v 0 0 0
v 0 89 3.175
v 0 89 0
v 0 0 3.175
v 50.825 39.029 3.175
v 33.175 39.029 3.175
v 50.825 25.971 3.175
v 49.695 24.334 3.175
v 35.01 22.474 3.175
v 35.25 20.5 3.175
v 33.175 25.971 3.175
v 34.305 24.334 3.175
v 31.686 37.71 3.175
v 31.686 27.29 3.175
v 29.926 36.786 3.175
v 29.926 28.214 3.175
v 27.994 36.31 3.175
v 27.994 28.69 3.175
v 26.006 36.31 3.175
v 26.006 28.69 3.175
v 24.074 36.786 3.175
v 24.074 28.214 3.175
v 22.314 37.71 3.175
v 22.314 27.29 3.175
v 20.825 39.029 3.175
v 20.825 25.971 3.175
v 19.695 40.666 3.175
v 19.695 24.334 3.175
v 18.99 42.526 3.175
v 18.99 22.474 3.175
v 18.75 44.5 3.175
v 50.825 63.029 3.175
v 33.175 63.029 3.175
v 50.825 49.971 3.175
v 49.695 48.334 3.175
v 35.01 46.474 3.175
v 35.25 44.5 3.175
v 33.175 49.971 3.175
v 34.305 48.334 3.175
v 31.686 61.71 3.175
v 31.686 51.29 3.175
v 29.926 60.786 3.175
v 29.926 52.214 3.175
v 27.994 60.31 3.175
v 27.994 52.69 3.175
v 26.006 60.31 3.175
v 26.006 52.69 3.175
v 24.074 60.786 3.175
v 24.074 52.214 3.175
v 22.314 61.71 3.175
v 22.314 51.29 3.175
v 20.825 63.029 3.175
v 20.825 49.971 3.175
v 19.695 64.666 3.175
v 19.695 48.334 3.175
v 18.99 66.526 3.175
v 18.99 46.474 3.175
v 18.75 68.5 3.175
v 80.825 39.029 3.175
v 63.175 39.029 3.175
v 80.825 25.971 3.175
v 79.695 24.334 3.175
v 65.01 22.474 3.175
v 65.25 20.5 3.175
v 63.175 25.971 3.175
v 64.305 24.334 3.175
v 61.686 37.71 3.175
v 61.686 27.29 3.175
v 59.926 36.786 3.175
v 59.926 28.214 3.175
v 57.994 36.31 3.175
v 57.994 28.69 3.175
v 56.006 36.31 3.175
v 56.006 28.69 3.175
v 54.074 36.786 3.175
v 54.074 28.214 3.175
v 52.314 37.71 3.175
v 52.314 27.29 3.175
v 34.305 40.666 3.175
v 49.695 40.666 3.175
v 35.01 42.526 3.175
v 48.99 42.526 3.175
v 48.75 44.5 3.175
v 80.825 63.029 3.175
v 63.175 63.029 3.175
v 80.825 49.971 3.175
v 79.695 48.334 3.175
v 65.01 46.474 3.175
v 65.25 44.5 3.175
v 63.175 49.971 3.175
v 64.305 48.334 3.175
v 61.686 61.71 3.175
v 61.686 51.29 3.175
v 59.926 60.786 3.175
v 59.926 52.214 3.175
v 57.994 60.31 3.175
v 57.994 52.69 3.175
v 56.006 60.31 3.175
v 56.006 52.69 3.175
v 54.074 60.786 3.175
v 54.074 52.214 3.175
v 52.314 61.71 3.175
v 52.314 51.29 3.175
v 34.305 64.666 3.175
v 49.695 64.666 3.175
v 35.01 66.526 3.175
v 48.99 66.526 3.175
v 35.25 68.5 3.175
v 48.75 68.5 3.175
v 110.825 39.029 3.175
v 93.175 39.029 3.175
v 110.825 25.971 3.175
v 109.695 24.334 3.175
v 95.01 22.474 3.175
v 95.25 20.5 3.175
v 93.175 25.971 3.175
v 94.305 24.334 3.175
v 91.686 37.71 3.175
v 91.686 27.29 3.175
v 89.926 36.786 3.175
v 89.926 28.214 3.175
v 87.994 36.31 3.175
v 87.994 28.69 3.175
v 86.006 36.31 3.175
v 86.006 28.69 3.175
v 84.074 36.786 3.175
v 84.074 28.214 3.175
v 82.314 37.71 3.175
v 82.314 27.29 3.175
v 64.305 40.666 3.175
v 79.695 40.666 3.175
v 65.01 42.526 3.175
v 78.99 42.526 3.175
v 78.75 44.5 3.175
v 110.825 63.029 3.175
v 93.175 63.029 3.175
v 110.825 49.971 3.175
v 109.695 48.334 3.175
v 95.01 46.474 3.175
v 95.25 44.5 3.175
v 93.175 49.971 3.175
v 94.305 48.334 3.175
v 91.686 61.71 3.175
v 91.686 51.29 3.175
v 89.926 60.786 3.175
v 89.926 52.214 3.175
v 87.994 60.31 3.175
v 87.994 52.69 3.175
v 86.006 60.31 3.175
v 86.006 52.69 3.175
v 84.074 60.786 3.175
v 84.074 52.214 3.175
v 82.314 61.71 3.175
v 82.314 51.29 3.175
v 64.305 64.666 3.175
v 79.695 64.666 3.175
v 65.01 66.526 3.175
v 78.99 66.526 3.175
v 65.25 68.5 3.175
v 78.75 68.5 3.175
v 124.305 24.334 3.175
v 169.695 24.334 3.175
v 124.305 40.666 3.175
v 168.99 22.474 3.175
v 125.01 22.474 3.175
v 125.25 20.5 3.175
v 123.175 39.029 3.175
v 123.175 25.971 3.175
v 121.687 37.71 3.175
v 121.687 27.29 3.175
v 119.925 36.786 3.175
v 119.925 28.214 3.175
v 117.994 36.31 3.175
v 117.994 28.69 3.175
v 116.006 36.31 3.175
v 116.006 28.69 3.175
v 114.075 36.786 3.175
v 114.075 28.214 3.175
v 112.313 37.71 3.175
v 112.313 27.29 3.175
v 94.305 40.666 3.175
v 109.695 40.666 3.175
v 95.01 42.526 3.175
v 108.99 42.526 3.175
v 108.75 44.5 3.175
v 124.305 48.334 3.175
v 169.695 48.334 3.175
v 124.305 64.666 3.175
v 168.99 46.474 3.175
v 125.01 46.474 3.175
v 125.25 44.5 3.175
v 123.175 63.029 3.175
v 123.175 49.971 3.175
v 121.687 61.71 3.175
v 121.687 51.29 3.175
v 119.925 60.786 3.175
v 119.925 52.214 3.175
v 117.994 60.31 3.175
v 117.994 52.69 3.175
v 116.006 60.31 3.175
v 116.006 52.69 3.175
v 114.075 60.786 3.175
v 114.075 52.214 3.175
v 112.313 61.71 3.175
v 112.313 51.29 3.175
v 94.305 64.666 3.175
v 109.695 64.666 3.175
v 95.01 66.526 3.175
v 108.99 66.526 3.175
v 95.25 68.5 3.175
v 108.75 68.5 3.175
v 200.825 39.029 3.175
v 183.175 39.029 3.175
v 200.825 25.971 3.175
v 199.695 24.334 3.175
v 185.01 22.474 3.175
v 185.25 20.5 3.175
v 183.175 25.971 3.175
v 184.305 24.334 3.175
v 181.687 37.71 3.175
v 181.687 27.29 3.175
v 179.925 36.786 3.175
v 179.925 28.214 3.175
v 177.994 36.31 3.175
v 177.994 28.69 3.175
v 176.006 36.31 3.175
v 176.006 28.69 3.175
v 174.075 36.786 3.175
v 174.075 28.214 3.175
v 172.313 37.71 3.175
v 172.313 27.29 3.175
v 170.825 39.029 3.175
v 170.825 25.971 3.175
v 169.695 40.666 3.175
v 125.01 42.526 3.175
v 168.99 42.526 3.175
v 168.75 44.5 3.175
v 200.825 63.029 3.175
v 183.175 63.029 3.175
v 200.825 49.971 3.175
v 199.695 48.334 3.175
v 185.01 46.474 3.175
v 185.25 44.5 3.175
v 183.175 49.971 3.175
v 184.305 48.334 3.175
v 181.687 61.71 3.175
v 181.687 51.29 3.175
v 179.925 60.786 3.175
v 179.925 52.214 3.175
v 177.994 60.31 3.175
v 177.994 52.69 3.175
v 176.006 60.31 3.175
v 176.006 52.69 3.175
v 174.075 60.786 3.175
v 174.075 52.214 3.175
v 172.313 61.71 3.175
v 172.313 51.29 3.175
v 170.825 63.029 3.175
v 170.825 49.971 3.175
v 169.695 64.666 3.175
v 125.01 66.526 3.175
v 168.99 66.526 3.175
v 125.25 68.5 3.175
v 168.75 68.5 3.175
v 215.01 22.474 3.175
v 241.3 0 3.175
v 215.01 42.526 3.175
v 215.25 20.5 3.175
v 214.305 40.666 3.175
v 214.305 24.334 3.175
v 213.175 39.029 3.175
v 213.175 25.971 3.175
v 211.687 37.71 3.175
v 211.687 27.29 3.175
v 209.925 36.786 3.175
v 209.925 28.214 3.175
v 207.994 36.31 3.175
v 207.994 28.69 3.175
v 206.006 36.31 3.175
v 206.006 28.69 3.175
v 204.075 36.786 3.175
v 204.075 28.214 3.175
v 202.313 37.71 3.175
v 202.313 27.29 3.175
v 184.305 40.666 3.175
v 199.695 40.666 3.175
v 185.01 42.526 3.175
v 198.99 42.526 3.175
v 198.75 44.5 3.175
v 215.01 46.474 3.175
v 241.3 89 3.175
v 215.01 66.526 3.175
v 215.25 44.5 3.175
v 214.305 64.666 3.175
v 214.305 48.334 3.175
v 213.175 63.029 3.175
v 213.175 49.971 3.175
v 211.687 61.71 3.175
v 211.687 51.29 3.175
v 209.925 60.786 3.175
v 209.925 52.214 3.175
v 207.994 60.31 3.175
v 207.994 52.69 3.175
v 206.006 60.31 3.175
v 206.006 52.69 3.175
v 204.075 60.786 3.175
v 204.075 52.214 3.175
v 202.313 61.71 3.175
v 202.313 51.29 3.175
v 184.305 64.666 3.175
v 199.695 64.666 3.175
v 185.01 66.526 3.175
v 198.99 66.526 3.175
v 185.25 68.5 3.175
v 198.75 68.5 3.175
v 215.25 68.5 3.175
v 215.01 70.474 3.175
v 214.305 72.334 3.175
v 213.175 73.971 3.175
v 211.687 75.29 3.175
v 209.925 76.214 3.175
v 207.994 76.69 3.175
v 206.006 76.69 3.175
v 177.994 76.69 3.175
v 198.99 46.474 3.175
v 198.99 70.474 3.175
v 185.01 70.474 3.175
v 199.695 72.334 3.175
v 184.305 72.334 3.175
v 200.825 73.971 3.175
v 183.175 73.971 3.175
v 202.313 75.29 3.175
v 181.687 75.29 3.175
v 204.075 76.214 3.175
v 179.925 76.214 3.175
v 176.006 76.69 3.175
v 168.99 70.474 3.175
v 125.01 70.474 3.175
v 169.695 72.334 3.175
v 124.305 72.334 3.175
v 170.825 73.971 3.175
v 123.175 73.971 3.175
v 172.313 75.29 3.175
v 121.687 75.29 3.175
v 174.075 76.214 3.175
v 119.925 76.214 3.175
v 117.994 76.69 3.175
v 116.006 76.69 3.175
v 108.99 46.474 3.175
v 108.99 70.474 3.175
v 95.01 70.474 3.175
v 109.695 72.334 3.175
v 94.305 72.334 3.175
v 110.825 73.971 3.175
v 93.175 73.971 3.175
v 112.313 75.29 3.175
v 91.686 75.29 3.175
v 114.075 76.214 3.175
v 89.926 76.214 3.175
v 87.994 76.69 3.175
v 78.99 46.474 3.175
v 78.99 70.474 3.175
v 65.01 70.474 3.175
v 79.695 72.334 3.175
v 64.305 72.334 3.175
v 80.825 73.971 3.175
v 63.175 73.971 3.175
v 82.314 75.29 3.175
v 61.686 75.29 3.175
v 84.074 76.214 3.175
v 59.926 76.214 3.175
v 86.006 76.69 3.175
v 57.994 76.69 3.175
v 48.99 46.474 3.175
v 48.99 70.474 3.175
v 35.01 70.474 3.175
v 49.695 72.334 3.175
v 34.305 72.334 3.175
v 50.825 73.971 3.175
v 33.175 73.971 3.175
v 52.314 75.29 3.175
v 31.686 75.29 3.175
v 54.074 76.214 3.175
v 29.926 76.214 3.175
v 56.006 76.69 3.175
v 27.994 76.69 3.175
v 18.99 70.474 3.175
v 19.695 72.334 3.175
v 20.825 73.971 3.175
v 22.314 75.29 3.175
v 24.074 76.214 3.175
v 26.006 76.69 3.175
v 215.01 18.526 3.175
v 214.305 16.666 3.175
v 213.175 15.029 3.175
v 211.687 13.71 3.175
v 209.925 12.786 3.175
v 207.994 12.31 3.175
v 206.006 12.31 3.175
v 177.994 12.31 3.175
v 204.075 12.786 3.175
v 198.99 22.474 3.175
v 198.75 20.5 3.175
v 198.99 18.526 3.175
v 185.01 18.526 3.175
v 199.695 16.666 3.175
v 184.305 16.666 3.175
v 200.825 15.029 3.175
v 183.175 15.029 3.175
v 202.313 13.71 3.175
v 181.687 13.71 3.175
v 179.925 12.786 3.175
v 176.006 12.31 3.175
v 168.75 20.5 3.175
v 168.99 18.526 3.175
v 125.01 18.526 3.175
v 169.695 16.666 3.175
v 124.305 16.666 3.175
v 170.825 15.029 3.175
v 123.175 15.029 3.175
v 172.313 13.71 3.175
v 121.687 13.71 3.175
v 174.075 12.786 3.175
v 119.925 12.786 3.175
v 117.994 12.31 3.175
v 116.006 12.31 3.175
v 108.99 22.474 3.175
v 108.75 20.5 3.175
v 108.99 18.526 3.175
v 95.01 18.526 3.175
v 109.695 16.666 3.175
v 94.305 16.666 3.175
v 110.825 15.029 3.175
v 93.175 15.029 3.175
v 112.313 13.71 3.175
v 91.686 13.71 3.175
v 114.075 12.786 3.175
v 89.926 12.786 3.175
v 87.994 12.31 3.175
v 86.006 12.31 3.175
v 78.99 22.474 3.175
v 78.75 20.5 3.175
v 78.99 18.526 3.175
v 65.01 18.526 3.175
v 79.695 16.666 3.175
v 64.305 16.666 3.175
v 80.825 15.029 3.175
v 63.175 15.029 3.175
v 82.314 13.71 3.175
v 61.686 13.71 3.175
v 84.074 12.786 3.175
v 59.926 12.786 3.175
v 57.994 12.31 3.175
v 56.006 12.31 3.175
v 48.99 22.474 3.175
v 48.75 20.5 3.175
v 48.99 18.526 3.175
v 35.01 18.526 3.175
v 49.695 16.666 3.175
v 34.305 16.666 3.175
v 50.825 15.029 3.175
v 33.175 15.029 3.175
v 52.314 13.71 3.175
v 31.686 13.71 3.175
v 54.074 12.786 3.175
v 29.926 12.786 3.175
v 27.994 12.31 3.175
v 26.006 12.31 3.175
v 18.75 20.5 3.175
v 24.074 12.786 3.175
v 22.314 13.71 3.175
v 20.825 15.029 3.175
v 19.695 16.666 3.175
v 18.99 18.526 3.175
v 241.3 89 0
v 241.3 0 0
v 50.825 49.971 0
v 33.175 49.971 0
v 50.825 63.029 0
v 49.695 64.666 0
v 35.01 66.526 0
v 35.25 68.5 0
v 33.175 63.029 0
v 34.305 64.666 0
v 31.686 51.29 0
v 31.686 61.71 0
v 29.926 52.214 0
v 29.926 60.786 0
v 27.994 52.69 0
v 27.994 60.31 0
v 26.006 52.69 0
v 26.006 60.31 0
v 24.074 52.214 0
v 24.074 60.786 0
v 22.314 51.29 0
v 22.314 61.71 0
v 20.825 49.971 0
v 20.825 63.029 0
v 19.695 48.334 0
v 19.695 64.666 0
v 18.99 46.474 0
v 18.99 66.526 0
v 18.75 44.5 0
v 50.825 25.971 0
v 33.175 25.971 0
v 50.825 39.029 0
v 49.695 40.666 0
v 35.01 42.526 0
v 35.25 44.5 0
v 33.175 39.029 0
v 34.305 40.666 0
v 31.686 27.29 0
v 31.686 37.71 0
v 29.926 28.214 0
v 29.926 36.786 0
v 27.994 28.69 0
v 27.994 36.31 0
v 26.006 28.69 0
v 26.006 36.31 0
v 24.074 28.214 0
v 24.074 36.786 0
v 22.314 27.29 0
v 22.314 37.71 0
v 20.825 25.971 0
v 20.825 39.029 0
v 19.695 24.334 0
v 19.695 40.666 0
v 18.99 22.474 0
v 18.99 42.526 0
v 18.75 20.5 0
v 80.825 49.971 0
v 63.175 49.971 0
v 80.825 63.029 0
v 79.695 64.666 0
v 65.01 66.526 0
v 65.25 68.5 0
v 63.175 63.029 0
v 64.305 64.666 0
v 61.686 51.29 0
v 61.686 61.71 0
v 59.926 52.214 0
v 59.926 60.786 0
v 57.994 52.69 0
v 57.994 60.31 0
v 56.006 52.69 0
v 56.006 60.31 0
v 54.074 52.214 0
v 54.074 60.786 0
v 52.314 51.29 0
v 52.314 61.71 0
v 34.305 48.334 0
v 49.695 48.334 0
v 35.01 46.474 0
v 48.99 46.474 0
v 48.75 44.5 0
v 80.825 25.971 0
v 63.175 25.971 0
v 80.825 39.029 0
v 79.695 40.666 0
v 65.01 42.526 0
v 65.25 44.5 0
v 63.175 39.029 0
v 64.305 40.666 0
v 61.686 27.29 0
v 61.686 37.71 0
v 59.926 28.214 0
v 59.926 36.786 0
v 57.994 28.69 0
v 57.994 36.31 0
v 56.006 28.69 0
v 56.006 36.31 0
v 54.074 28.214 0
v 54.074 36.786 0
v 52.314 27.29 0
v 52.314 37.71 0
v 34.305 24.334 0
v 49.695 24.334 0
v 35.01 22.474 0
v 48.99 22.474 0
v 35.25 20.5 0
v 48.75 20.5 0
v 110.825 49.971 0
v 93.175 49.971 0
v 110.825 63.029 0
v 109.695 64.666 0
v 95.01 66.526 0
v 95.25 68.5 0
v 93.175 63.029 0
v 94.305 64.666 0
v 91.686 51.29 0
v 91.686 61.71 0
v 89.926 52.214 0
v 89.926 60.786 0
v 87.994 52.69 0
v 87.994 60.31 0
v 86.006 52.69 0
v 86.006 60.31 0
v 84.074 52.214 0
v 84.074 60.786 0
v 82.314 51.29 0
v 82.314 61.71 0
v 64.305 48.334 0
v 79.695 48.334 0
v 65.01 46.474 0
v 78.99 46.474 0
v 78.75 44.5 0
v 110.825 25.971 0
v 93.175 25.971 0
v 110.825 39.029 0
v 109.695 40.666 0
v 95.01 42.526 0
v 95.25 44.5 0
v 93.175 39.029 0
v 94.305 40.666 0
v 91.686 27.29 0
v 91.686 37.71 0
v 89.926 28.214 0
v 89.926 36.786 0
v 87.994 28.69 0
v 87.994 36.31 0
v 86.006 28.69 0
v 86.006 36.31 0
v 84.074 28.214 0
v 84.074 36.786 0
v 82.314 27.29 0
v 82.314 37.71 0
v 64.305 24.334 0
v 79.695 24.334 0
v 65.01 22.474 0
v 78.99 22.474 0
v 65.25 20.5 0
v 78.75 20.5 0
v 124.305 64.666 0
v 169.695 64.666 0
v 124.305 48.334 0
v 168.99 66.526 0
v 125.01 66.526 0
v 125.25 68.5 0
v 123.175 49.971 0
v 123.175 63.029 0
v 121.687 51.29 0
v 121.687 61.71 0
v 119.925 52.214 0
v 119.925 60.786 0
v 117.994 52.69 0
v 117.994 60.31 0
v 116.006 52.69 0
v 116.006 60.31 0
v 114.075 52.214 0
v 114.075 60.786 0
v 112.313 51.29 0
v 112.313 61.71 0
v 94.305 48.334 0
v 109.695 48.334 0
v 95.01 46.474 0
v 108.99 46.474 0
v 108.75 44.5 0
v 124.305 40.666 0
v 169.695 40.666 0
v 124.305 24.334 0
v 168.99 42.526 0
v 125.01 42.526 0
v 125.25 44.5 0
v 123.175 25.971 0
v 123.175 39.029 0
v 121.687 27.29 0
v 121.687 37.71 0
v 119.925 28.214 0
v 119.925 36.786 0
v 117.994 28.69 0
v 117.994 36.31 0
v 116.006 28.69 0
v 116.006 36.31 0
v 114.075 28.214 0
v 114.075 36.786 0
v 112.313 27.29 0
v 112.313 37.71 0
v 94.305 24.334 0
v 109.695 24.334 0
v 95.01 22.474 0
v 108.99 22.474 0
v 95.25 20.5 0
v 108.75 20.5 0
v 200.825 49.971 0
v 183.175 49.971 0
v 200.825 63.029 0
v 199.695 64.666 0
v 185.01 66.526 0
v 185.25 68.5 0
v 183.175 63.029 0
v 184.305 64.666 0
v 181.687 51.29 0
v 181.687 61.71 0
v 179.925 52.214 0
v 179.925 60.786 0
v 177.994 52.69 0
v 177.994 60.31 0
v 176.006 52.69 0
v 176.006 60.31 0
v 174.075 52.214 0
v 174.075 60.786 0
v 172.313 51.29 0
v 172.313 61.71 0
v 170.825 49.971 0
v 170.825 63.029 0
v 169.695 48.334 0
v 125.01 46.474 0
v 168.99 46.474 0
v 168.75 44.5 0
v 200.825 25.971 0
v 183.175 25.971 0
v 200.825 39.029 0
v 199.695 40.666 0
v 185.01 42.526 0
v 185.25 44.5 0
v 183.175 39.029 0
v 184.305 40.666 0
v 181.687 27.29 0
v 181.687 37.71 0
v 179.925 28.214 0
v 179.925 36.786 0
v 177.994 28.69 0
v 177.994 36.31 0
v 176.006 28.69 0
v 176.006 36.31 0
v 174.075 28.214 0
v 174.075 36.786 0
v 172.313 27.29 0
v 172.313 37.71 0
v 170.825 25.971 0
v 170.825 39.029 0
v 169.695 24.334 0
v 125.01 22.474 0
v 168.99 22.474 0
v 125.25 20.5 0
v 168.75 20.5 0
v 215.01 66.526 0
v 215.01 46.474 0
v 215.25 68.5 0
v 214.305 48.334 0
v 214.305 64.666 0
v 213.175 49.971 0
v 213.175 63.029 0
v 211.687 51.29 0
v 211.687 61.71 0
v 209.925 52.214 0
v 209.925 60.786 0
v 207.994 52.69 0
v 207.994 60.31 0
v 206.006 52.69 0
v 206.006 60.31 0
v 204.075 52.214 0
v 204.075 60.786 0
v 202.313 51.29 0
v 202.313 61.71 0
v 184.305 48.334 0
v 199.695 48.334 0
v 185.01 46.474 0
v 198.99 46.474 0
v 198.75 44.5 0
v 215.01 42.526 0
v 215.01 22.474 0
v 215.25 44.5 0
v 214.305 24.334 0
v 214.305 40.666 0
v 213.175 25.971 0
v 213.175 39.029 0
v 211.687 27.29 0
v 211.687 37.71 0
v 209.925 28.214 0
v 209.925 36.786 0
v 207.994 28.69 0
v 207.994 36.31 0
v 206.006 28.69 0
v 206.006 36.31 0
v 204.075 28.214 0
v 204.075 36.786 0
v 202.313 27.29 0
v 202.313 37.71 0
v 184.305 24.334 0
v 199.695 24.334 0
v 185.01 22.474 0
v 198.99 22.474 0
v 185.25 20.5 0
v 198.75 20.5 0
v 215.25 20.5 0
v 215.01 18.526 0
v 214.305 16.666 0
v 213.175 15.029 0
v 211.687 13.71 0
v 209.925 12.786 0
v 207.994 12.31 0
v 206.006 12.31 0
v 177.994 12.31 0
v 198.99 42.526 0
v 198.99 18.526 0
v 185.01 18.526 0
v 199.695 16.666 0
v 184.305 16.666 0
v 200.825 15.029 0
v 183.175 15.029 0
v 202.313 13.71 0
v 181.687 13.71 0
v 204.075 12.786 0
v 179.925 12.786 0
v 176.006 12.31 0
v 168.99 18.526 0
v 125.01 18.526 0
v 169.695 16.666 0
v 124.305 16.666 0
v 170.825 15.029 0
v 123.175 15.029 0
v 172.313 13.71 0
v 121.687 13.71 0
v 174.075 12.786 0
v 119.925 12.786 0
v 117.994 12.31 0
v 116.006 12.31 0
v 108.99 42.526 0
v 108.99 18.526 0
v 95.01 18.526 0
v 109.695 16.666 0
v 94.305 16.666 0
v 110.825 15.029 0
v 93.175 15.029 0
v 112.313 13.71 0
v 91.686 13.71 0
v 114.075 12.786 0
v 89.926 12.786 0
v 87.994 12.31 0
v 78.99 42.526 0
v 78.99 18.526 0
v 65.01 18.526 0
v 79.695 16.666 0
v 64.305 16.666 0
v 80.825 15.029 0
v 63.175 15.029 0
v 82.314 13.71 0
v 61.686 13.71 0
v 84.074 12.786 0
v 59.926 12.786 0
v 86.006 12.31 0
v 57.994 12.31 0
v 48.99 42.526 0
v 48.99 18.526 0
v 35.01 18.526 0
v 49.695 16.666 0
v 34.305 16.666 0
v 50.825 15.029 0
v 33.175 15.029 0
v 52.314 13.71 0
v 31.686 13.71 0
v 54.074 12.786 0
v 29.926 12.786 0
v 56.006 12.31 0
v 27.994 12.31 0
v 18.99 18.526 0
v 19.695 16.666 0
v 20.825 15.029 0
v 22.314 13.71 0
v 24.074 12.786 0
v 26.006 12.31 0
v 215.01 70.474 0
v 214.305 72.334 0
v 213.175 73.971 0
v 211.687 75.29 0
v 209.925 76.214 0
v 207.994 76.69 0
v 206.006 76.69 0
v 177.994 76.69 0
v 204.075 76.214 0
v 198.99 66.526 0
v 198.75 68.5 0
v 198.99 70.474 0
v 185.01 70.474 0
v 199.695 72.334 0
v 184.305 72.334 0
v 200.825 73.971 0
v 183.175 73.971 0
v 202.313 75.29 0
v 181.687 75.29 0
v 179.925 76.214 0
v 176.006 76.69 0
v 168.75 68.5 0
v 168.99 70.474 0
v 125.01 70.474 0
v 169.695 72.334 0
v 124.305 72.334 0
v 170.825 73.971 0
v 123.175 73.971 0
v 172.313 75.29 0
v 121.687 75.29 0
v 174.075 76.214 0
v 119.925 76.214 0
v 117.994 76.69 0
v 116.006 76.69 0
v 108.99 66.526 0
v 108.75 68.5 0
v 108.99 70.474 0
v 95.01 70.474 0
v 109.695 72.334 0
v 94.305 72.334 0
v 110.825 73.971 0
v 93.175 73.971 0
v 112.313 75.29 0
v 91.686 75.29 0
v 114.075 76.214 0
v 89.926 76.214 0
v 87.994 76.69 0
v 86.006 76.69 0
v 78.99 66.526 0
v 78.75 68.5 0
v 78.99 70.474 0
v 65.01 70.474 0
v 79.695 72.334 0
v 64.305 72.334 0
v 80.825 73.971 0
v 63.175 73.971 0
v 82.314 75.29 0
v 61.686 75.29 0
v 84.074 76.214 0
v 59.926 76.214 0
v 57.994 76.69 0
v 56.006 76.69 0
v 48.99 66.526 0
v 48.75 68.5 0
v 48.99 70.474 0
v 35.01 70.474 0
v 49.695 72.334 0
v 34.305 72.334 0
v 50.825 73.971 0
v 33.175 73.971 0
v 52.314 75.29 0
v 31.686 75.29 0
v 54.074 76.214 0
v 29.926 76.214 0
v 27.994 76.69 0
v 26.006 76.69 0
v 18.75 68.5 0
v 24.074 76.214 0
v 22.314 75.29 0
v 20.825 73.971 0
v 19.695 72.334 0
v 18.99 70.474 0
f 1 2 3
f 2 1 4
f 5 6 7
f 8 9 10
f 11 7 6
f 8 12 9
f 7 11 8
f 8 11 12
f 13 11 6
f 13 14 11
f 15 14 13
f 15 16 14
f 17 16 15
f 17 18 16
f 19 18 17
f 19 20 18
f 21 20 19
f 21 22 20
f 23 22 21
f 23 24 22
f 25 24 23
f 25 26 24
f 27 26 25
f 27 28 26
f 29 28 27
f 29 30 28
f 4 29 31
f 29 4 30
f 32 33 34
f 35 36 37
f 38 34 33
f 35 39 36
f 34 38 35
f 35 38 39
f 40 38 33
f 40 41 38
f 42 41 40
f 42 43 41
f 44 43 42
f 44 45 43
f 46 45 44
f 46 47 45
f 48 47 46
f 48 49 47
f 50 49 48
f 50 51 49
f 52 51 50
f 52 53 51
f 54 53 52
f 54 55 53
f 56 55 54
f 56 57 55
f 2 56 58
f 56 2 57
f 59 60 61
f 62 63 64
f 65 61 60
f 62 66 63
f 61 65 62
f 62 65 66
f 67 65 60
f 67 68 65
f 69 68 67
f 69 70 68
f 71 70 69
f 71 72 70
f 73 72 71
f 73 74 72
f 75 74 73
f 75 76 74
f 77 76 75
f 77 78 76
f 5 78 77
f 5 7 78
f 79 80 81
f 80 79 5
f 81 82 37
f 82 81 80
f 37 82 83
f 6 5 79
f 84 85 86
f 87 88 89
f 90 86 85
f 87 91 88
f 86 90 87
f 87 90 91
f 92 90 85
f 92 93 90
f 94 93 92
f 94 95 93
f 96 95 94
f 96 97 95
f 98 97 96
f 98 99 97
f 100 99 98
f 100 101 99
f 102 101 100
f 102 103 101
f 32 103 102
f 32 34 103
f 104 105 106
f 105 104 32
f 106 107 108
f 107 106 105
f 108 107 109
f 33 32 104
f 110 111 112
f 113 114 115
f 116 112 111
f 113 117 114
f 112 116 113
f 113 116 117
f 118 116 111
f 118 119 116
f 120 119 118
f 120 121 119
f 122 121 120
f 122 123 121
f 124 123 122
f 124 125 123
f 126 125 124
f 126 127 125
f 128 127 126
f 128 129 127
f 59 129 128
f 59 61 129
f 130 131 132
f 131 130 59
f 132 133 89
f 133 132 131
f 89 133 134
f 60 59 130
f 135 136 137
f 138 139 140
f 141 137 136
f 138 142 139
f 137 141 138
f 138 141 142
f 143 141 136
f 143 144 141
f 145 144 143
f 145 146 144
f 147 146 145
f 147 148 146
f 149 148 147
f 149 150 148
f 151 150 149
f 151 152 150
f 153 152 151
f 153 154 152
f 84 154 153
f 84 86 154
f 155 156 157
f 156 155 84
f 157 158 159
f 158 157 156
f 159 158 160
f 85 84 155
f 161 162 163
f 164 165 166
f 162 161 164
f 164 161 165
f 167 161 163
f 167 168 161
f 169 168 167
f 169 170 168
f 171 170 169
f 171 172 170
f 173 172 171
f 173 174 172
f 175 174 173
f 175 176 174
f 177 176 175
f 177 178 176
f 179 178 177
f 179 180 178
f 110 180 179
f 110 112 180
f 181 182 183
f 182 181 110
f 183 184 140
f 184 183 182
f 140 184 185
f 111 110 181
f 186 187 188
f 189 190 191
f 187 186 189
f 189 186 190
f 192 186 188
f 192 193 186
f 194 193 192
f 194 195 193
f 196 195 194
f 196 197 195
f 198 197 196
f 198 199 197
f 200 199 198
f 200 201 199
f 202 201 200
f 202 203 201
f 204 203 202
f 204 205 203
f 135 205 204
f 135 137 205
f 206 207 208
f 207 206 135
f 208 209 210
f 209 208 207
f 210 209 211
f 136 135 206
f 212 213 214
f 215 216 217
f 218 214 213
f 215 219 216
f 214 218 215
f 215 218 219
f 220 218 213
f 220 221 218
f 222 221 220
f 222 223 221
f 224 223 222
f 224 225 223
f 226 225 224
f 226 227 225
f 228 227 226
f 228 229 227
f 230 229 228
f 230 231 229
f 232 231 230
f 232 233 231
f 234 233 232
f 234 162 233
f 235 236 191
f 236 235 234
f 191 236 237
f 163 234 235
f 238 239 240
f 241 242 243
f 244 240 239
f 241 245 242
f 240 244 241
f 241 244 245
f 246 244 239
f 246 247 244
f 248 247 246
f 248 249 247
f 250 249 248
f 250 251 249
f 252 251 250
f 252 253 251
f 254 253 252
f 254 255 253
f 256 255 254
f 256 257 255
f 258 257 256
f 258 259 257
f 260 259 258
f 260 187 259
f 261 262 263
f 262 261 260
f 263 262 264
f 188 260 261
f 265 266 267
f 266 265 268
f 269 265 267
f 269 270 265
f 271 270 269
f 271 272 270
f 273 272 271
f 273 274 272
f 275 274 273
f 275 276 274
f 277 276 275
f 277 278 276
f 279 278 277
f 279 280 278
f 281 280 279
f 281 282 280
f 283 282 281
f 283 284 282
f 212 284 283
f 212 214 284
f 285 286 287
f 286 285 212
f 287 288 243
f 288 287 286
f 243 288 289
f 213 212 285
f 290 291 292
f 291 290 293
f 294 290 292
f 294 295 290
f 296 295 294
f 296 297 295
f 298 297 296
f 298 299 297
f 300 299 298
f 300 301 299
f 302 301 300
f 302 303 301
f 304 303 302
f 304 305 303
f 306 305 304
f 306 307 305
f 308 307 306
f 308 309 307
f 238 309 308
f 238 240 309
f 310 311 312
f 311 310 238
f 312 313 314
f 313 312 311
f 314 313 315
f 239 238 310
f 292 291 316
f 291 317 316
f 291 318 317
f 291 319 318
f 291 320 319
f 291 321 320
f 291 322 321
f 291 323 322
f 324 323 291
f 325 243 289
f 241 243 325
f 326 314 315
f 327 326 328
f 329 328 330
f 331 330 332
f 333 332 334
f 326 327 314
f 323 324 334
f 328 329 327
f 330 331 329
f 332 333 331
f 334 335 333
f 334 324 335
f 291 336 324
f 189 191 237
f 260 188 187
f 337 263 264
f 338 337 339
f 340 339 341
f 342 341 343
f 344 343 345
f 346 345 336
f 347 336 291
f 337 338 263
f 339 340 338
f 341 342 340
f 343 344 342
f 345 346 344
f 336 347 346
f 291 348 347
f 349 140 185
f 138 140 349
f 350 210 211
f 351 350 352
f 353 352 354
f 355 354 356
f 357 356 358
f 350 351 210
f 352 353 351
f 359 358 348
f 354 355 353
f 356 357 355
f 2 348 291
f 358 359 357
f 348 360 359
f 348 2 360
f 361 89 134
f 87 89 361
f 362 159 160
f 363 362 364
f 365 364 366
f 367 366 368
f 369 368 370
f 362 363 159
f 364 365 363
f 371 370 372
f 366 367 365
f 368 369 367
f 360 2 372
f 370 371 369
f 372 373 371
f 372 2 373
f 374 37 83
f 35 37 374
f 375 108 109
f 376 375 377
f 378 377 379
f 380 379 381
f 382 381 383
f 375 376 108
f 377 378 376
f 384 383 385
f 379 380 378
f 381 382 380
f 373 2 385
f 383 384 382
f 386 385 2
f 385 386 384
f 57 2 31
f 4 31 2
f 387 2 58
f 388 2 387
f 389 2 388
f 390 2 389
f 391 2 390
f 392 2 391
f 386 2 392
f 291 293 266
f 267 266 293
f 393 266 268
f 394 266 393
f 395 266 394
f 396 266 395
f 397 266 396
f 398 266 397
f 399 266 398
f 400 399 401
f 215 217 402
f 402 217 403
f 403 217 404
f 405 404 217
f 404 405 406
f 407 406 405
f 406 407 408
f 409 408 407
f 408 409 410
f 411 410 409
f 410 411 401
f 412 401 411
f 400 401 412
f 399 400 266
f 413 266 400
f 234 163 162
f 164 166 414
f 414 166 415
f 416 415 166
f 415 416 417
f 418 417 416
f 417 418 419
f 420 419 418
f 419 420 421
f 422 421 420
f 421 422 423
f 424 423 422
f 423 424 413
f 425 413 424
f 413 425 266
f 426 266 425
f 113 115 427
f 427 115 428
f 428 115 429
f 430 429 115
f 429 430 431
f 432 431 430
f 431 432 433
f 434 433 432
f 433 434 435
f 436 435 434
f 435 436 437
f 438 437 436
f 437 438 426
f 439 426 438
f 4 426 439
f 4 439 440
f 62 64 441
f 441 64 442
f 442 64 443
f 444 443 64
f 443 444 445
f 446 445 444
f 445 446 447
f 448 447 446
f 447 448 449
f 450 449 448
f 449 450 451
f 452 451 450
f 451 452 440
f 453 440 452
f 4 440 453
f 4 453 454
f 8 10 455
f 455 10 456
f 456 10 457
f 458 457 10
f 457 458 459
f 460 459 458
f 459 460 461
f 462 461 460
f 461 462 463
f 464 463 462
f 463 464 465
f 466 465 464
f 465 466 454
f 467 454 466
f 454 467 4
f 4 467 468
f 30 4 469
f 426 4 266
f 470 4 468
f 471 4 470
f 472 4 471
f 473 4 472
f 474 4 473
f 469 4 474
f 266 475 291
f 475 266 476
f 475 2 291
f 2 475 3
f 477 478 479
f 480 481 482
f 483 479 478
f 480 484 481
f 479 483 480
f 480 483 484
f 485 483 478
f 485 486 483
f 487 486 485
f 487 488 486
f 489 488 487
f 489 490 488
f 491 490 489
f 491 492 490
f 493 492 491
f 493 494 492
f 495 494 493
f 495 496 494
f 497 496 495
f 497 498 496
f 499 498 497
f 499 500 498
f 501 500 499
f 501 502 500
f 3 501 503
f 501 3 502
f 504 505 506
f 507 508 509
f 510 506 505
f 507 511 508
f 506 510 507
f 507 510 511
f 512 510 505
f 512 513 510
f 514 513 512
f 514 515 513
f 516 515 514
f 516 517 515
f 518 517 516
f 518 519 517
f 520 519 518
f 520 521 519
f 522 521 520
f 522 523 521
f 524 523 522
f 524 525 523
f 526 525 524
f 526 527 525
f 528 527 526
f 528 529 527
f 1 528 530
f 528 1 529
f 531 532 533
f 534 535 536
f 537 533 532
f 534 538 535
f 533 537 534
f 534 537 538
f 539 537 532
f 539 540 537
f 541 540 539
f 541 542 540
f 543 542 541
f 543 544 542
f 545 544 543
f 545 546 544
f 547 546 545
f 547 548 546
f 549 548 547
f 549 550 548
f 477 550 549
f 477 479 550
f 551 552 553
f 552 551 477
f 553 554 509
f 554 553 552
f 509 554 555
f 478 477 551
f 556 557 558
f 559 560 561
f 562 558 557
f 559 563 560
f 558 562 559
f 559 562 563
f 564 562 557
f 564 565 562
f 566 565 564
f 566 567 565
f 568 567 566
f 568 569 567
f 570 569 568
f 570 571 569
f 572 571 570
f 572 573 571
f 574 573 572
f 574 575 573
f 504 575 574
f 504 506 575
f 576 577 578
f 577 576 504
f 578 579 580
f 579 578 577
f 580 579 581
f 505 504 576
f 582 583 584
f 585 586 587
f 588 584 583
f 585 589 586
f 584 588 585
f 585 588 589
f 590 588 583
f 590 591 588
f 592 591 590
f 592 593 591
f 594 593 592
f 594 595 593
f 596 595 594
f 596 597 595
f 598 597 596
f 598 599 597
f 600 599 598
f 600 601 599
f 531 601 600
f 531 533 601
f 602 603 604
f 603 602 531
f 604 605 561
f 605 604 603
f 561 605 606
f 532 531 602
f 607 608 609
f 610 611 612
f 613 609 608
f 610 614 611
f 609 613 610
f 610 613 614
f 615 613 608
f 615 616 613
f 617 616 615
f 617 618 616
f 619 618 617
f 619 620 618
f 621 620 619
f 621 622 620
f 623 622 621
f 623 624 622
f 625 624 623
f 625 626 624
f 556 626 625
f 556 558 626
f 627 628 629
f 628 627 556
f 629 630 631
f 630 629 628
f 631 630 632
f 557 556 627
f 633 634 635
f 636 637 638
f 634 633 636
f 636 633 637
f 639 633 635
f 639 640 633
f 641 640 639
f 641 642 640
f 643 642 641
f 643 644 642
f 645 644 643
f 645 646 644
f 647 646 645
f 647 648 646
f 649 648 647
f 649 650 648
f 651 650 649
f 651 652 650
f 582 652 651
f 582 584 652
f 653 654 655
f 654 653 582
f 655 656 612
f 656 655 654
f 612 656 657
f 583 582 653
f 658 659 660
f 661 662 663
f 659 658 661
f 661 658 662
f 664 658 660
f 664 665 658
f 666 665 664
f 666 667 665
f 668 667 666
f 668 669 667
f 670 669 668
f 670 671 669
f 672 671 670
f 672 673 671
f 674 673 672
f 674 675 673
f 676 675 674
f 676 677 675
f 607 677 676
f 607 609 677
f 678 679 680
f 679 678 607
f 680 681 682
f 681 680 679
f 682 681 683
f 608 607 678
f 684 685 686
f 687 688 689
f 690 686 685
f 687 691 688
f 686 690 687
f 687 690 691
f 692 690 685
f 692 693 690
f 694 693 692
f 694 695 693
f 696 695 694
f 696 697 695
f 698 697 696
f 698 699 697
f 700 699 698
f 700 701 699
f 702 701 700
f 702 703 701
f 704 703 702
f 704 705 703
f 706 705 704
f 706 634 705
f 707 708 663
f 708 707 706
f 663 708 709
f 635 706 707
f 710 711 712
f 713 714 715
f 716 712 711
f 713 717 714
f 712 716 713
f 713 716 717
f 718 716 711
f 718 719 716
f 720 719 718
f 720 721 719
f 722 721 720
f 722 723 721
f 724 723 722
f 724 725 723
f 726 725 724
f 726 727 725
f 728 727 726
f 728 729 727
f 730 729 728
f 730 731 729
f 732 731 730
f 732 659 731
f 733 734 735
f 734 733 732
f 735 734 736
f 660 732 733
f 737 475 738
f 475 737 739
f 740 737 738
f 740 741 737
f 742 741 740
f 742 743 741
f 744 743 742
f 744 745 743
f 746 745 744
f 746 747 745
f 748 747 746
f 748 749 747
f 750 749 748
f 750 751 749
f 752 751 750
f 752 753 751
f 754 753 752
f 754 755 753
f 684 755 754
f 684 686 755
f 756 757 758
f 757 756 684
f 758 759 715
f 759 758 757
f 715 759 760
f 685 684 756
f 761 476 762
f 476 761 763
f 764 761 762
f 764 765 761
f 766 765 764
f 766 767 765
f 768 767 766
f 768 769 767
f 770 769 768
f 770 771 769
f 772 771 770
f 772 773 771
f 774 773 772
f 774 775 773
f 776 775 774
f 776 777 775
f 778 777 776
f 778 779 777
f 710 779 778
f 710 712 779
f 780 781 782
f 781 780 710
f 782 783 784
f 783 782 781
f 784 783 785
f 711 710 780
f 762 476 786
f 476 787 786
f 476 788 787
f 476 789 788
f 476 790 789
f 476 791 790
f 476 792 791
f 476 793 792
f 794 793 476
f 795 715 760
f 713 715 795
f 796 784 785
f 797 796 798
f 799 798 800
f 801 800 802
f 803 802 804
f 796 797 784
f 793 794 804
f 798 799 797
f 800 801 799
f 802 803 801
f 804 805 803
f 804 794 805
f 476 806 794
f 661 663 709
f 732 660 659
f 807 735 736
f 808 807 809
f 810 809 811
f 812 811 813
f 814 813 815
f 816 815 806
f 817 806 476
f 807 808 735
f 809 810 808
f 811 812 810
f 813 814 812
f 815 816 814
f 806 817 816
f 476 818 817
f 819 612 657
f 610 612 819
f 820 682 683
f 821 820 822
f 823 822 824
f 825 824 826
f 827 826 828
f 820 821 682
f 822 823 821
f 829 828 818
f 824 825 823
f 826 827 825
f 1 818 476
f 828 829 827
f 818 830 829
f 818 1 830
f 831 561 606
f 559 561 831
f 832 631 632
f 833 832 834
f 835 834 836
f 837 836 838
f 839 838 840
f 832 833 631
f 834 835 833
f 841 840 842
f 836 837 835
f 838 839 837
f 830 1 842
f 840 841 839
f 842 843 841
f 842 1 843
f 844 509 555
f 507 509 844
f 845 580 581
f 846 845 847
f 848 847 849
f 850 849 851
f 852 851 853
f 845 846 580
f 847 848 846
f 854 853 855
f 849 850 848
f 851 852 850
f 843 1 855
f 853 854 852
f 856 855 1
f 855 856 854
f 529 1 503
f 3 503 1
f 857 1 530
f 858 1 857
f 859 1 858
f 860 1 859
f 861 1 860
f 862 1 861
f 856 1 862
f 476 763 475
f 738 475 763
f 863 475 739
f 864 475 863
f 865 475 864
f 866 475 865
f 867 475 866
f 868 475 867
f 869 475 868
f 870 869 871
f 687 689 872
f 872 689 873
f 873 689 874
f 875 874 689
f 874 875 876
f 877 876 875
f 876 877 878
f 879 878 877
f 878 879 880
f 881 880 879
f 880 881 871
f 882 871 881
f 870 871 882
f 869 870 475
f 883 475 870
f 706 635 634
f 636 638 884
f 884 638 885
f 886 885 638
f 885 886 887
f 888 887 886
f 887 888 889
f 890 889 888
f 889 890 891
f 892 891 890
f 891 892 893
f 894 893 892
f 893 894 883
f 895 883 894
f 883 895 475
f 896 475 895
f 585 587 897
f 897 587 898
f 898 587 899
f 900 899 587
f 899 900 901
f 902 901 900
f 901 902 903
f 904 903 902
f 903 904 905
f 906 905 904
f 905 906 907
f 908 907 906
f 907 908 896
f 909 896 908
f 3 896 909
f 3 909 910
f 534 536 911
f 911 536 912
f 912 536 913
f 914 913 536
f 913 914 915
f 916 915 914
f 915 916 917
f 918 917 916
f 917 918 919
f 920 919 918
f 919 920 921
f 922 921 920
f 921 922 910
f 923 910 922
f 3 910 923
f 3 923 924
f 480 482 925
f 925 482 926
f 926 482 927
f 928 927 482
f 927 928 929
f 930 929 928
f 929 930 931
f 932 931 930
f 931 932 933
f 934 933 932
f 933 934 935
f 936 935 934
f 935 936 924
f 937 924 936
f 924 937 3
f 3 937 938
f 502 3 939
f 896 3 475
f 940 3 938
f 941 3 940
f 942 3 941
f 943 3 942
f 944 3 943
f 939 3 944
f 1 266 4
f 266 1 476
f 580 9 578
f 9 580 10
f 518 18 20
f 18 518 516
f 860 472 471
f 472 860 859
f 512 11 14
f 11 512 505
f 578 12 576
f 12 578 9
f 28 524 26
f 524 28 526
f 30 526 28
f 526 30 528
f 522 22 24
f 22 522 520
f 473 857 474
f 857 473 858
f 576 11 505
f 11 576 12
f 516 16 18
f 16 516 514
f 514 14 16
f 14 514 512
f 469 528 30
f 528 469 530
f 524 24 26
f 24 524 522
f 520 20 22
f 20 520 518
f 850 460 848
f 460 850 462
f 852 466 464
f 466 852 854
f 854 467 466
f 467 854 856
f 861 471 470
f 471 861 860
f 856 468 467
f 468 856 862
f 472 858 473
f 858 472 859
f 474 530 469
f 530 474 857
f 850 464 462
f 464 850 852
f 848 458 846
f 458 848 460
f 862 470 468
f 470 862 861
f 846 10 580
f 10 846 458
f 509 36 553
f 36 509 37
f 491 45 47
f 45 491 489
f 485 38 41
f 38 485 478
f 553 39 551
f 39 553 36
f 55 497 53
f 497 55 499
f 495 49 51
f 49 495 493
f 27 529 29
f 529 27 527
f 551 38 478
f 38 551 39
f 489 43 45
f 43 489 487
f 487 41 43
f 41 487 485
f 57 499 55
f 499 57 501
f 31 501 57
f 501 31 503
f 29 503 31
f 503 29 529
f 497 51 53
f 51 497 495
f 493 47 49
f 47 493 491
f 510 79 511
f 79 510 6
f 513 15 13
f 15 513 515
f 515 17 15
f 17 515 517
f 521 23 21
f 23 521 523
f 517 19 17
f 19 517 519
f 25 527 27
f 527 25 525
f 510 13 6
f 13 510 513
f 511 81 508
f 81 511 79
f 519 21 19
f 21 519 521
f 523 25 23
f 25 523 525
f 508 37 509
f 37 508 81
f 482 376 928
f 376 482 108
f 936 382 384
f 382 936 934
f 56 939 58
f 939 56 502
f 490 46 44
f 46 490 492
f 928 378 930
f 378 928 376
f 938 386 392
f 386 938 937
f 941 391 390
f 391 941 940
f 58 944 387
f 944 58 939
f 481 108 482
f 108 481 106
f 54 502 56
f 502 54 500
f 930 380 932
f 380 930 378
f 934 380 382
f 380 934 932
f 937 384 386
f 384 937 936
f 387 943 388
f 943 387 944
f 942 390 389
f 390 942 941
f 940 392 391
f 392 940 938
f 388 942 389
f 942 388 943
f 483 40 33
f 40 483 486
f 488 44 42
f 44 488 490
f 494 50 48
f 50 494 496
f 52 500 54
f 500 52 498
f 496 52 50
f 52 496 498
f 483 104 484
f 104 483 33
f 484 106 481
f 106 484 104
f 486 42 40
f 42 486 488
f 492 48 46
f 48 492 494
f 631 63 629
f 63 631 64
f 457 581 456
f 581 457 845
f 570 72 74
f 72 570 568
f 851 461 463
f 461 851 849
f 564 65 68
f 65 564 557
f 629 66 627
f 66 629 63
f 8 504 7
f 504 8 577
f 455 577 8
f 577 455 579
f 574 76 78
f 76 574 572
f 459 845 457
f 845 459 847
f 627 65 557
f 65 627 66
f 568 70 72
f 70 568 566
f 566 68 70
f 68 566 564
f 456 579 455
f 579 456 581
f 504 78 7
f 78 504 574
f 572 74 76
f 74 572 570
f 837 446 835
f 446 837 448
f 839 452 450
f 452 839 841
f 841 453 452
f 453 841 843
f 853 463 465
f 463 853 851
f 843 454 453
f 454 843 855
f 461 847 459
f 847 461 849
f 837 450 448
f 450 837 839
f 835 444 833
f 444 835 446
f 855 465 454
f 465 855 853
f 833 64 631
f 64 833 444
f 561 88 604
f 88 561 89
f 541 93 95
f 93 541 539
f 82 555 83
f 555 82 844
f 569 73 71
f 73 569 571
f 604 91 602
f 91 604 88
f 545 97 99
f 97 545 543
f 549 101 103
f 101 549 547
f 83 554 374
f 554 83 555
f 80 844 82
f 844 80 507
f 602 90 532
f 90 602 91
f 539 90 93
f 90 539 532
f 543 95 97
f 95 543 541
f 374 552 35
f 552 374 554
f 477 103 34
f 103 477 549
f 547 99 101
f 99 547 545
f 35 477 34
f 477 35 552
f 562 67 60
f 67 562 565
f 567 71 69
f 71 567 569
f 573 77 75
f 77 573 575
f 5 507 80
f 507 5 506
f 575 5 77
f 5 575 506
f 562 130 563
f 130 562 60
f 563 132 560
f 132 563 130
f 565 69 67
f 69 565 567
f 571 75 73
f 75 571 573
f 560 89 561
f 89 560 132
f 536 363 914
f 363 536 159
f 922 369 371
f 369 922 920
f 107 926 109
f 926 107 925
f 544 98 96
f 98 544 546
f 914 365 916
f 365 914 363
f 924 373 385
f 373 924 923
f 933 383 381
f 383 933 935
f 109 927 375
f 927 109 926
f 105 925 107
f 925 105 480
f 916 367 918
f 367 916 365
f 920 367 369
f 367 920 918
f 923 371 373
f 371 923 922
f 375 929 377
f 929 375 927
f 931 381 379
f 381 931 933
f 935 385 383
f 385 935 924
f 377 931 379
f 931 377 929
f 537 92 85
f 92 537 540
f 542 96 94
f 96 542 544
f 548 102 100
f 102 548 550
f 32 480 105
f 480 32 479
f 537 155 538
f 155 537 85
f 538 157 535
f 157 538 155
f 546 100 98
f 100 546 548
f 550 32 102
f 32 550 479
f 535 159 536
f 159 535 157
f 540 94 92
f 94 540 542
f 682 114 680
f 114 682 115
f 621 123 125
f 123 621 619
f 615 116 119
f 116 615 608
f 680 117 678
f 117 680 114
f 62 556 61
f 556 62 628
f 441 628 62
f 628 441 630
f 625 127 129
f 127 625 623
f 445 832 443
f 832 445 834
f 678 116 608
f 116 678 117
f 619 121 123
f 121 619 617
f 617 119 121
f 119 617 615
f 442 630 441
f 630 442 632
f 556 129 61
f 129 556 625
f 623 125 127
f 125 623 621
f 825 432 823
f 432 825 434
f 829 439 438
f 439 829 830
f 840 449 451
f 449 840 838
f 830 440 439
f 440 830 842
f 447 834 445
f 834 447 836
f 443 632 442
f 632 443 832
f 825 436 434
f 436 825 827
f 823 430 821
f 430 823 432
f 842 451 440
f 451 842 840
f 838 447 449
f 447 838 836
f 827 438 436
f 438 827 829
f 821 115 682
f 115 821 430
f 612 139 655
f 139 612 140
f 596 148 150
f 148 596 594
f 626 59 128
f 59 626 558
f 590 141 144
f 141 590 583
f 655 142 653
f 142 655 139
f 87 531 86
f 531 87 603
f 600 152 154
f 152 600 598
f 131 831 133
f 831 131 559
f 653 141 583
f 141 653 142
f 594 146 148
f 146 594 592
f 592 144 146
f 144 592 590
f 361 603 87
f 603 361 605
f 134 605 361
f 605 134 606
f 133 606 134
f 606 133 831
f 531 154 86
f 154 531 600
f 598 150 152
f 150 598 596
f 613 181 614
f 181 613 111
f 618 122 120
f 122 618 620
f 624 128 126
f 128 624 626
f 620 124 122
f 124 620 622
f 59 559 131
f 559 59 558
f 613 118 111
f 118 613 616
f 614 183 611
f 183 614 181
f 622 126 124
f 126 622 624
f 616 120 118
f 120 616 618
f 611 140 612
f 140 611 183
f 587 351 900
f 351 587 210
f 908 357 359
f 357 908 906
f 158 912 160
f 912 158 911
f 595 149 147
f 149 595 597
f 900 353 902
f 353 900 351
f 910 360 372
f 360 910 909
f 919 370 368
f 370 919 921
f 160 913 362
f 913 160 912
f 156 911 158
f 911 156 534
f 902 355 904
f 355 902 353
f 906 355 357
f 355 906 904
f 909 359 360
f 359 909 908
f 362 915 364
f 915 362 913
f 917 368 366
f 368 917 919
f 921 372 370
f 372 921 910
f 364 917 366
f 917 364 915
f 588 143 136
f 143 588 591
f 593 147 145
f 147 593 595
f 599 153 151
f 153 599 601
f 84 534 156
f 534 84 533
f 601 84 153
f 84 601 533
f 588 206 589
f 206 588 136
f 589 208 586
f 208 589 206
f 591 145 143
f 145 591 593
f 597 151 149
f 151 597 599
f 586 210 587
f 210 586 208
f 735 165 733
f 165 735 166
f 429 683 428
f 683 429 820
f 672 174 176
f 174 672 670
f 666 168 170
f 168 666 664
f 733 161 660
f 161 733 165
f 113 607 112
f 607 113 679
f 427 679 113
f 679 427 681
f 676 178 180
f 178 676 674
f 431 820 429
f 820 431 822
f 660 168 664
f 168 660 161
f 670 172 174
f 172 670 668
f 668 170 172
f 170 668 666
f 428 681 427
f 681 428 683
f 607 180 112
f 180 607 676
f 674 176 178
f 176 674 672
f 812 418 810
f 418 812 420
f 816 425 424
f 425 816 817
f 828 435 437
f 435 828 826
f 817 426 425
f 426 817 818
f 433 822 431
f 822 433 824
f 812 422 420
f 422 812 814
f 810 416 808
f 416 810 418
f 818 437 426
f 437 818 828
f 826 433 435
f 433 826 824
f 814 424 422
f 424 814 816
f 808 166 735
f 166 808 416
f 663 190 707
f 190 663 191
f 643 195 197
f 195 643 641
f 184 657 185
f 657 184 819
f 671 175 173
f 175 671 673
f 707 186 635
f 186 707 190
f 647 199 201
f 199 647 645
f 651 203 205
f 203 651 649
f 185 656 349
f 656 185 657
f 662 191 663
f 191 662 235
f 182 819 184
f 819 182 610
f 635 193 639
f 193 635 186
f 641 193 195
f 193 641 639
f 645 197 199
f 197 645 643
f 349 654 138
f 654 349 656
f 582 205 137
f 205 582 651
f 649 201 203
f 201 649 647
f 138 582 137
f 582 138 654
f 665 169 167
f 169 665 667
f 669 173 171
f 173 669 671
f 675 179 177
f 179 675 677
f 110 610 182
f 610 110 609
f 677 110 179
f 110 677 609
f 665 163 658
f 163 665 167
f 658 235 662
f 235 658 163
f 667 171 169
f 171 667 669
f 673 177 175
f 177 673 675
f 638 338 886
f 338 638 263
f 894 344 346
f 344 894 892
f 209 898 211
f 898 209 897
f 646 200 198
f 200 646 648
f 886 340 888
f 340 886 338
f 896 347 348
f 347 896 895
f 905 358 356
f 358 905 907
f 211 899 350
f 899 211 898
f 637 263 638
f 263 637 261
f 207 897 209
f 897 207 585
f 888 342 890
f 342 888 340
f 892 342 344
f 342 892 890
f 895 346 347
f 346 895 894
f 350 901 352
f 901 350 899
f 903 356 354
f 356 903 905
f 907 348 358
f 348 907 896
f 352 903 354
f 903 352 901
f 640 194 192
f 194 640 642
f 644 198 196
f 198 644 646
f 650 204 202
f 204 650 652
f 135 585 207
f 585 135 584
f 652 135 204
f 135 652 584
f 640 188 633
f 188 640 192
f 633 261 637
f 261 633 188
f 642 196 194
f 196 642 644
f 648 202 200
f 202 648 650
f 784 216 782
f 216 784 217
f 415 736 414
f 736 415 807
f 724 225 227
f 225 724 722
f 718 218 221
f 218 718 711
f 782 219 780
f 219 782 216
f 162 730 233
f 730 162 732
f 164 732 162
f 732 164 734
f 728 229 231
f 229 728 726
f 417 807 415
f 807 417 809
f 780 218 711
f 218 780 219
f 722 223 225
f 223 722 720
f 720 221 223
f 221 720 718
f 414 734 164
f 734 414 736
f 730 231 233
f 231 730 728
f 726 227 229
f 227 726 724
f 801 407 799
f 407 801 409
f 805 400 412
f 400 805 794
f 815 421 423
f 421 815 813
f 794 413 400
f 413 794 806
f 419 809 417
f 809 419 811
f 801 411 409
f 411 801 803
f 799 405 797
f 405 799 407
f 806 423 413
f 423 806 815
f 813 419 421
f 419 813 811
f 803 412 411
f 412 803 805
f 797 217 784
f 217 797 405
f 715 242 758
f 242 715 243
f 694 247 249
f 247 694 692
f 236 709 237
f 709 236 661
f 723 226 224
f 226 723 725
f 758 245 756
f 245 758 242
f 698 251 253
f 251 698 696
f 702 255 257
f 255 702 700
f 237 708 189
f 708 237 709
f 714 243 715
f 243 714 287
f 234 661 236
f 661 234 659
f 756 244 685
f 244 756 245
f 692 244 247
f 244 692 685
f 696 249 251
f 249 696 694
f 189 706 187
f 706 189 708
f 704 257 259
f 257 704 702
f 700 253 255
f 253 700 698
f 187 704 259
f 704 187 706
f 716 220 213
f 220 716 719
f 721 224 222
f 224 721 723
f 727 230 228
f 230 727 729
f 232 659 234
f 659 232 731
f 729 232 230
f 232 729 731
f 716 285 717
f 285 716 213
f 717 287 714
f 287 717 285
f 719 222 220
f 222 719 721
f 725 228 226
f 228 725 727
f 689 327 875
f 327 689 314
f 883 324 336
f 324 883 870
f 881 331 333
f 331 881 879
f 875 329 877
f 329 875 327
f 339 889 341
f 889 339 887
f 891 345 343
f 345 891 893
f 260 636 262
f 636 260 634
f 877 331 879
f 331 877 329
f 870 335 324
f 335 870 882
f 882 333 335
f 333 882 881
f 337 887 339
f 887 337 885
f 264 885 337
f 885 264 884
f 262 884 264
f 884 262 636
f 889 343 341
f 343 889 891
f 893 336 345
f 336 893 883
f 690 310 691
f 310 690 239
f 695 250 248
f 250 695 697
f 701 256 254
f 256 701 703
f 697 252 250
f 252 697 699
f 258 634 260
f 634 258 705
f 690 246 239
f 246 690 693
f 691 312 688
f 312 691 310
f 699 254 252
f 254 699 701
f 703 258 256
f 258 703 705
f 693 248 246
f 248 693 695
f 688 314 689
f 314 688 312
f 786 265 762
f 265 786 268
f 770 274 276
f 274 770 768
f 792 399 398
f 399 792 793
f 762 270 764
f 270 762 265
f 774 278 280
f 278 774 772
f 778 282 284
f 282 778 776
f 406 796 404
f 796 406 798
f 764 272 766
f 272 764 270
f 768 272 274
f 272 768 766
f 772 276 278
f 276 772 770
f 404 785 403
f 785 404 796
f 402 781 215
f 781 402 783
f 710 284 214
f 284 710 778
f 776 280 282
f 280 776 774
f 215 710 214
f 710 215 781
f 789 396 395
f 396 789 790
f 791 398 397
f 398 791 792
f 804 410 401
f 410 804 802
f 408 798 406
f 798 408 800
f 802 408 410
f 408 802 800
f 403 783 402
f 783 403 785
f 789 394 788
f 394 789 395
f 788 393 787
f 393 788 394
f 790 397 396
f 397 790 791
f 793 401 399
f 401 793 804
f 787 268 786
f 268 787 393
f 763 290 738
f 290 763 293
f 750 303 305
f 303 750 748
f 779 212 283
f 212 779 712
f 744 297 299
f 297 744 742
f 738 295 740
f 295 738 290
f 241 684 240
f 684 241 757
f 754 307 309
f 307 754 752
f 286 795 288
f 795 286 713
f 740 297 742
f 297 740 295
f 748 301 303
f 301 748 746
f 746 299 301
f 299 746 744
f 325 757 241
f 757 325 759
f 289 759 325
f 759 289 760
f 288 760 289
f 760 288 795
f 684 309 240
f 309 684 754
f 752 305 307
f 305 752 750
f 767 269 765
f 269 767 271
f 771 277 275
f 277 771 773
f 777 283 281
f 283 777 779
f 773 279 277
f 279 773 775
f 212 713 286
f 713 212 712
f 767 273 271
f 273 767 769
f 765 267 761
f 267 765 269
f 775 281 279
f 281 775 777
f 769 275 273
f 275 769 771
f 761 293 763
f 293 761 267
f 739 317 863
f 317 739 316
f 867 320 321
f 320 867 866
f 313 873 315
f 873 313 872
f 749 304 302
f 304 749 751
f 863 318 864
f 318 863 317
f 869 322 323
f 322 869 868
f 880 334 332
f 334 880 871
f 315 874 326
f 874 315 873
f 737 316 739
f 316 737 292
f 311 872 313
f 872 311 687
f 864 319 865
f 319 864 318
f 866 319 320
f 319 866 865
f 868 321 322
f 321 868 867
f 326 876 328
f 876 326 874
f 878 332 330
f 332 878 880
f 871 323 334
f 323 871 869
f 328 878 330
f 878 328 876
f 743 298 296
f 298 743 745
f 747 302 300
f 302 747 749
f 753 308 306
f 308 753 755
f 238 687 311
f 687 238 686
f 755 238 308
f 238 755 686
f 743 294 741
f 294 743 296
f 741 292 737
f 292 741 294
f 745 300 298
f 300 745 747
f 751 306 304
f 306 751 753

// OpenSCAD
leftOffset = 15;
bottomOffset = 11.5;
switchWidth = 24;
switchHeight = 18;
switchVgap = 6;
switchHgap = 6;
holeRadius = 16.5/2;

module hole(row, column) {
    /* Rectangular Holes
    xLoc = leftOffset + (row * (switchWidth + switchHgap));
    yLoc = bottomOffset + (column * (switchHeight + switchVgap));
    translate ([xLoc, yLoc, -2]) cube([switchWidth, switchHeight, 6]);
    */
    /* Round Holes */
    xLoc = leftOffset + (row * (switchWidth + switchHgap)) + (switchWidth / 2);
    yLoc = bottomOffset + (column * (switchHeight + switchVgap)) + (switchHeight / 2);
    translate ([xLoc, yLoc, -2]) cylinder(6, holeRadius, holeRadius, false);
    
}

difference() {
    /* cube([482.6, 44.5*2, 3.175]);  /* Full width */
    cube([482.6/2, 44.5*2, 3.175]);  /* Half Width */
    /* cube([40, 40, 3.175]);  /* Test Print */
    hole(0, 0);
    hole(0, 1);
    hole(0, 2);
    hole(1, 0);
    hole(1, 1);
    hole(1, 2);
    hole(2, 0);
    hole(2, 1);
    hole(2, 2);
    hole(3, 0);
    hole(3, 1);
    hole(3, 2);
    hole(5, 0);
    hole(5, 1);
    hole(5, 2);
    hole(6, 0);
    hole(6, 1);
    hole(6, 2);
}
